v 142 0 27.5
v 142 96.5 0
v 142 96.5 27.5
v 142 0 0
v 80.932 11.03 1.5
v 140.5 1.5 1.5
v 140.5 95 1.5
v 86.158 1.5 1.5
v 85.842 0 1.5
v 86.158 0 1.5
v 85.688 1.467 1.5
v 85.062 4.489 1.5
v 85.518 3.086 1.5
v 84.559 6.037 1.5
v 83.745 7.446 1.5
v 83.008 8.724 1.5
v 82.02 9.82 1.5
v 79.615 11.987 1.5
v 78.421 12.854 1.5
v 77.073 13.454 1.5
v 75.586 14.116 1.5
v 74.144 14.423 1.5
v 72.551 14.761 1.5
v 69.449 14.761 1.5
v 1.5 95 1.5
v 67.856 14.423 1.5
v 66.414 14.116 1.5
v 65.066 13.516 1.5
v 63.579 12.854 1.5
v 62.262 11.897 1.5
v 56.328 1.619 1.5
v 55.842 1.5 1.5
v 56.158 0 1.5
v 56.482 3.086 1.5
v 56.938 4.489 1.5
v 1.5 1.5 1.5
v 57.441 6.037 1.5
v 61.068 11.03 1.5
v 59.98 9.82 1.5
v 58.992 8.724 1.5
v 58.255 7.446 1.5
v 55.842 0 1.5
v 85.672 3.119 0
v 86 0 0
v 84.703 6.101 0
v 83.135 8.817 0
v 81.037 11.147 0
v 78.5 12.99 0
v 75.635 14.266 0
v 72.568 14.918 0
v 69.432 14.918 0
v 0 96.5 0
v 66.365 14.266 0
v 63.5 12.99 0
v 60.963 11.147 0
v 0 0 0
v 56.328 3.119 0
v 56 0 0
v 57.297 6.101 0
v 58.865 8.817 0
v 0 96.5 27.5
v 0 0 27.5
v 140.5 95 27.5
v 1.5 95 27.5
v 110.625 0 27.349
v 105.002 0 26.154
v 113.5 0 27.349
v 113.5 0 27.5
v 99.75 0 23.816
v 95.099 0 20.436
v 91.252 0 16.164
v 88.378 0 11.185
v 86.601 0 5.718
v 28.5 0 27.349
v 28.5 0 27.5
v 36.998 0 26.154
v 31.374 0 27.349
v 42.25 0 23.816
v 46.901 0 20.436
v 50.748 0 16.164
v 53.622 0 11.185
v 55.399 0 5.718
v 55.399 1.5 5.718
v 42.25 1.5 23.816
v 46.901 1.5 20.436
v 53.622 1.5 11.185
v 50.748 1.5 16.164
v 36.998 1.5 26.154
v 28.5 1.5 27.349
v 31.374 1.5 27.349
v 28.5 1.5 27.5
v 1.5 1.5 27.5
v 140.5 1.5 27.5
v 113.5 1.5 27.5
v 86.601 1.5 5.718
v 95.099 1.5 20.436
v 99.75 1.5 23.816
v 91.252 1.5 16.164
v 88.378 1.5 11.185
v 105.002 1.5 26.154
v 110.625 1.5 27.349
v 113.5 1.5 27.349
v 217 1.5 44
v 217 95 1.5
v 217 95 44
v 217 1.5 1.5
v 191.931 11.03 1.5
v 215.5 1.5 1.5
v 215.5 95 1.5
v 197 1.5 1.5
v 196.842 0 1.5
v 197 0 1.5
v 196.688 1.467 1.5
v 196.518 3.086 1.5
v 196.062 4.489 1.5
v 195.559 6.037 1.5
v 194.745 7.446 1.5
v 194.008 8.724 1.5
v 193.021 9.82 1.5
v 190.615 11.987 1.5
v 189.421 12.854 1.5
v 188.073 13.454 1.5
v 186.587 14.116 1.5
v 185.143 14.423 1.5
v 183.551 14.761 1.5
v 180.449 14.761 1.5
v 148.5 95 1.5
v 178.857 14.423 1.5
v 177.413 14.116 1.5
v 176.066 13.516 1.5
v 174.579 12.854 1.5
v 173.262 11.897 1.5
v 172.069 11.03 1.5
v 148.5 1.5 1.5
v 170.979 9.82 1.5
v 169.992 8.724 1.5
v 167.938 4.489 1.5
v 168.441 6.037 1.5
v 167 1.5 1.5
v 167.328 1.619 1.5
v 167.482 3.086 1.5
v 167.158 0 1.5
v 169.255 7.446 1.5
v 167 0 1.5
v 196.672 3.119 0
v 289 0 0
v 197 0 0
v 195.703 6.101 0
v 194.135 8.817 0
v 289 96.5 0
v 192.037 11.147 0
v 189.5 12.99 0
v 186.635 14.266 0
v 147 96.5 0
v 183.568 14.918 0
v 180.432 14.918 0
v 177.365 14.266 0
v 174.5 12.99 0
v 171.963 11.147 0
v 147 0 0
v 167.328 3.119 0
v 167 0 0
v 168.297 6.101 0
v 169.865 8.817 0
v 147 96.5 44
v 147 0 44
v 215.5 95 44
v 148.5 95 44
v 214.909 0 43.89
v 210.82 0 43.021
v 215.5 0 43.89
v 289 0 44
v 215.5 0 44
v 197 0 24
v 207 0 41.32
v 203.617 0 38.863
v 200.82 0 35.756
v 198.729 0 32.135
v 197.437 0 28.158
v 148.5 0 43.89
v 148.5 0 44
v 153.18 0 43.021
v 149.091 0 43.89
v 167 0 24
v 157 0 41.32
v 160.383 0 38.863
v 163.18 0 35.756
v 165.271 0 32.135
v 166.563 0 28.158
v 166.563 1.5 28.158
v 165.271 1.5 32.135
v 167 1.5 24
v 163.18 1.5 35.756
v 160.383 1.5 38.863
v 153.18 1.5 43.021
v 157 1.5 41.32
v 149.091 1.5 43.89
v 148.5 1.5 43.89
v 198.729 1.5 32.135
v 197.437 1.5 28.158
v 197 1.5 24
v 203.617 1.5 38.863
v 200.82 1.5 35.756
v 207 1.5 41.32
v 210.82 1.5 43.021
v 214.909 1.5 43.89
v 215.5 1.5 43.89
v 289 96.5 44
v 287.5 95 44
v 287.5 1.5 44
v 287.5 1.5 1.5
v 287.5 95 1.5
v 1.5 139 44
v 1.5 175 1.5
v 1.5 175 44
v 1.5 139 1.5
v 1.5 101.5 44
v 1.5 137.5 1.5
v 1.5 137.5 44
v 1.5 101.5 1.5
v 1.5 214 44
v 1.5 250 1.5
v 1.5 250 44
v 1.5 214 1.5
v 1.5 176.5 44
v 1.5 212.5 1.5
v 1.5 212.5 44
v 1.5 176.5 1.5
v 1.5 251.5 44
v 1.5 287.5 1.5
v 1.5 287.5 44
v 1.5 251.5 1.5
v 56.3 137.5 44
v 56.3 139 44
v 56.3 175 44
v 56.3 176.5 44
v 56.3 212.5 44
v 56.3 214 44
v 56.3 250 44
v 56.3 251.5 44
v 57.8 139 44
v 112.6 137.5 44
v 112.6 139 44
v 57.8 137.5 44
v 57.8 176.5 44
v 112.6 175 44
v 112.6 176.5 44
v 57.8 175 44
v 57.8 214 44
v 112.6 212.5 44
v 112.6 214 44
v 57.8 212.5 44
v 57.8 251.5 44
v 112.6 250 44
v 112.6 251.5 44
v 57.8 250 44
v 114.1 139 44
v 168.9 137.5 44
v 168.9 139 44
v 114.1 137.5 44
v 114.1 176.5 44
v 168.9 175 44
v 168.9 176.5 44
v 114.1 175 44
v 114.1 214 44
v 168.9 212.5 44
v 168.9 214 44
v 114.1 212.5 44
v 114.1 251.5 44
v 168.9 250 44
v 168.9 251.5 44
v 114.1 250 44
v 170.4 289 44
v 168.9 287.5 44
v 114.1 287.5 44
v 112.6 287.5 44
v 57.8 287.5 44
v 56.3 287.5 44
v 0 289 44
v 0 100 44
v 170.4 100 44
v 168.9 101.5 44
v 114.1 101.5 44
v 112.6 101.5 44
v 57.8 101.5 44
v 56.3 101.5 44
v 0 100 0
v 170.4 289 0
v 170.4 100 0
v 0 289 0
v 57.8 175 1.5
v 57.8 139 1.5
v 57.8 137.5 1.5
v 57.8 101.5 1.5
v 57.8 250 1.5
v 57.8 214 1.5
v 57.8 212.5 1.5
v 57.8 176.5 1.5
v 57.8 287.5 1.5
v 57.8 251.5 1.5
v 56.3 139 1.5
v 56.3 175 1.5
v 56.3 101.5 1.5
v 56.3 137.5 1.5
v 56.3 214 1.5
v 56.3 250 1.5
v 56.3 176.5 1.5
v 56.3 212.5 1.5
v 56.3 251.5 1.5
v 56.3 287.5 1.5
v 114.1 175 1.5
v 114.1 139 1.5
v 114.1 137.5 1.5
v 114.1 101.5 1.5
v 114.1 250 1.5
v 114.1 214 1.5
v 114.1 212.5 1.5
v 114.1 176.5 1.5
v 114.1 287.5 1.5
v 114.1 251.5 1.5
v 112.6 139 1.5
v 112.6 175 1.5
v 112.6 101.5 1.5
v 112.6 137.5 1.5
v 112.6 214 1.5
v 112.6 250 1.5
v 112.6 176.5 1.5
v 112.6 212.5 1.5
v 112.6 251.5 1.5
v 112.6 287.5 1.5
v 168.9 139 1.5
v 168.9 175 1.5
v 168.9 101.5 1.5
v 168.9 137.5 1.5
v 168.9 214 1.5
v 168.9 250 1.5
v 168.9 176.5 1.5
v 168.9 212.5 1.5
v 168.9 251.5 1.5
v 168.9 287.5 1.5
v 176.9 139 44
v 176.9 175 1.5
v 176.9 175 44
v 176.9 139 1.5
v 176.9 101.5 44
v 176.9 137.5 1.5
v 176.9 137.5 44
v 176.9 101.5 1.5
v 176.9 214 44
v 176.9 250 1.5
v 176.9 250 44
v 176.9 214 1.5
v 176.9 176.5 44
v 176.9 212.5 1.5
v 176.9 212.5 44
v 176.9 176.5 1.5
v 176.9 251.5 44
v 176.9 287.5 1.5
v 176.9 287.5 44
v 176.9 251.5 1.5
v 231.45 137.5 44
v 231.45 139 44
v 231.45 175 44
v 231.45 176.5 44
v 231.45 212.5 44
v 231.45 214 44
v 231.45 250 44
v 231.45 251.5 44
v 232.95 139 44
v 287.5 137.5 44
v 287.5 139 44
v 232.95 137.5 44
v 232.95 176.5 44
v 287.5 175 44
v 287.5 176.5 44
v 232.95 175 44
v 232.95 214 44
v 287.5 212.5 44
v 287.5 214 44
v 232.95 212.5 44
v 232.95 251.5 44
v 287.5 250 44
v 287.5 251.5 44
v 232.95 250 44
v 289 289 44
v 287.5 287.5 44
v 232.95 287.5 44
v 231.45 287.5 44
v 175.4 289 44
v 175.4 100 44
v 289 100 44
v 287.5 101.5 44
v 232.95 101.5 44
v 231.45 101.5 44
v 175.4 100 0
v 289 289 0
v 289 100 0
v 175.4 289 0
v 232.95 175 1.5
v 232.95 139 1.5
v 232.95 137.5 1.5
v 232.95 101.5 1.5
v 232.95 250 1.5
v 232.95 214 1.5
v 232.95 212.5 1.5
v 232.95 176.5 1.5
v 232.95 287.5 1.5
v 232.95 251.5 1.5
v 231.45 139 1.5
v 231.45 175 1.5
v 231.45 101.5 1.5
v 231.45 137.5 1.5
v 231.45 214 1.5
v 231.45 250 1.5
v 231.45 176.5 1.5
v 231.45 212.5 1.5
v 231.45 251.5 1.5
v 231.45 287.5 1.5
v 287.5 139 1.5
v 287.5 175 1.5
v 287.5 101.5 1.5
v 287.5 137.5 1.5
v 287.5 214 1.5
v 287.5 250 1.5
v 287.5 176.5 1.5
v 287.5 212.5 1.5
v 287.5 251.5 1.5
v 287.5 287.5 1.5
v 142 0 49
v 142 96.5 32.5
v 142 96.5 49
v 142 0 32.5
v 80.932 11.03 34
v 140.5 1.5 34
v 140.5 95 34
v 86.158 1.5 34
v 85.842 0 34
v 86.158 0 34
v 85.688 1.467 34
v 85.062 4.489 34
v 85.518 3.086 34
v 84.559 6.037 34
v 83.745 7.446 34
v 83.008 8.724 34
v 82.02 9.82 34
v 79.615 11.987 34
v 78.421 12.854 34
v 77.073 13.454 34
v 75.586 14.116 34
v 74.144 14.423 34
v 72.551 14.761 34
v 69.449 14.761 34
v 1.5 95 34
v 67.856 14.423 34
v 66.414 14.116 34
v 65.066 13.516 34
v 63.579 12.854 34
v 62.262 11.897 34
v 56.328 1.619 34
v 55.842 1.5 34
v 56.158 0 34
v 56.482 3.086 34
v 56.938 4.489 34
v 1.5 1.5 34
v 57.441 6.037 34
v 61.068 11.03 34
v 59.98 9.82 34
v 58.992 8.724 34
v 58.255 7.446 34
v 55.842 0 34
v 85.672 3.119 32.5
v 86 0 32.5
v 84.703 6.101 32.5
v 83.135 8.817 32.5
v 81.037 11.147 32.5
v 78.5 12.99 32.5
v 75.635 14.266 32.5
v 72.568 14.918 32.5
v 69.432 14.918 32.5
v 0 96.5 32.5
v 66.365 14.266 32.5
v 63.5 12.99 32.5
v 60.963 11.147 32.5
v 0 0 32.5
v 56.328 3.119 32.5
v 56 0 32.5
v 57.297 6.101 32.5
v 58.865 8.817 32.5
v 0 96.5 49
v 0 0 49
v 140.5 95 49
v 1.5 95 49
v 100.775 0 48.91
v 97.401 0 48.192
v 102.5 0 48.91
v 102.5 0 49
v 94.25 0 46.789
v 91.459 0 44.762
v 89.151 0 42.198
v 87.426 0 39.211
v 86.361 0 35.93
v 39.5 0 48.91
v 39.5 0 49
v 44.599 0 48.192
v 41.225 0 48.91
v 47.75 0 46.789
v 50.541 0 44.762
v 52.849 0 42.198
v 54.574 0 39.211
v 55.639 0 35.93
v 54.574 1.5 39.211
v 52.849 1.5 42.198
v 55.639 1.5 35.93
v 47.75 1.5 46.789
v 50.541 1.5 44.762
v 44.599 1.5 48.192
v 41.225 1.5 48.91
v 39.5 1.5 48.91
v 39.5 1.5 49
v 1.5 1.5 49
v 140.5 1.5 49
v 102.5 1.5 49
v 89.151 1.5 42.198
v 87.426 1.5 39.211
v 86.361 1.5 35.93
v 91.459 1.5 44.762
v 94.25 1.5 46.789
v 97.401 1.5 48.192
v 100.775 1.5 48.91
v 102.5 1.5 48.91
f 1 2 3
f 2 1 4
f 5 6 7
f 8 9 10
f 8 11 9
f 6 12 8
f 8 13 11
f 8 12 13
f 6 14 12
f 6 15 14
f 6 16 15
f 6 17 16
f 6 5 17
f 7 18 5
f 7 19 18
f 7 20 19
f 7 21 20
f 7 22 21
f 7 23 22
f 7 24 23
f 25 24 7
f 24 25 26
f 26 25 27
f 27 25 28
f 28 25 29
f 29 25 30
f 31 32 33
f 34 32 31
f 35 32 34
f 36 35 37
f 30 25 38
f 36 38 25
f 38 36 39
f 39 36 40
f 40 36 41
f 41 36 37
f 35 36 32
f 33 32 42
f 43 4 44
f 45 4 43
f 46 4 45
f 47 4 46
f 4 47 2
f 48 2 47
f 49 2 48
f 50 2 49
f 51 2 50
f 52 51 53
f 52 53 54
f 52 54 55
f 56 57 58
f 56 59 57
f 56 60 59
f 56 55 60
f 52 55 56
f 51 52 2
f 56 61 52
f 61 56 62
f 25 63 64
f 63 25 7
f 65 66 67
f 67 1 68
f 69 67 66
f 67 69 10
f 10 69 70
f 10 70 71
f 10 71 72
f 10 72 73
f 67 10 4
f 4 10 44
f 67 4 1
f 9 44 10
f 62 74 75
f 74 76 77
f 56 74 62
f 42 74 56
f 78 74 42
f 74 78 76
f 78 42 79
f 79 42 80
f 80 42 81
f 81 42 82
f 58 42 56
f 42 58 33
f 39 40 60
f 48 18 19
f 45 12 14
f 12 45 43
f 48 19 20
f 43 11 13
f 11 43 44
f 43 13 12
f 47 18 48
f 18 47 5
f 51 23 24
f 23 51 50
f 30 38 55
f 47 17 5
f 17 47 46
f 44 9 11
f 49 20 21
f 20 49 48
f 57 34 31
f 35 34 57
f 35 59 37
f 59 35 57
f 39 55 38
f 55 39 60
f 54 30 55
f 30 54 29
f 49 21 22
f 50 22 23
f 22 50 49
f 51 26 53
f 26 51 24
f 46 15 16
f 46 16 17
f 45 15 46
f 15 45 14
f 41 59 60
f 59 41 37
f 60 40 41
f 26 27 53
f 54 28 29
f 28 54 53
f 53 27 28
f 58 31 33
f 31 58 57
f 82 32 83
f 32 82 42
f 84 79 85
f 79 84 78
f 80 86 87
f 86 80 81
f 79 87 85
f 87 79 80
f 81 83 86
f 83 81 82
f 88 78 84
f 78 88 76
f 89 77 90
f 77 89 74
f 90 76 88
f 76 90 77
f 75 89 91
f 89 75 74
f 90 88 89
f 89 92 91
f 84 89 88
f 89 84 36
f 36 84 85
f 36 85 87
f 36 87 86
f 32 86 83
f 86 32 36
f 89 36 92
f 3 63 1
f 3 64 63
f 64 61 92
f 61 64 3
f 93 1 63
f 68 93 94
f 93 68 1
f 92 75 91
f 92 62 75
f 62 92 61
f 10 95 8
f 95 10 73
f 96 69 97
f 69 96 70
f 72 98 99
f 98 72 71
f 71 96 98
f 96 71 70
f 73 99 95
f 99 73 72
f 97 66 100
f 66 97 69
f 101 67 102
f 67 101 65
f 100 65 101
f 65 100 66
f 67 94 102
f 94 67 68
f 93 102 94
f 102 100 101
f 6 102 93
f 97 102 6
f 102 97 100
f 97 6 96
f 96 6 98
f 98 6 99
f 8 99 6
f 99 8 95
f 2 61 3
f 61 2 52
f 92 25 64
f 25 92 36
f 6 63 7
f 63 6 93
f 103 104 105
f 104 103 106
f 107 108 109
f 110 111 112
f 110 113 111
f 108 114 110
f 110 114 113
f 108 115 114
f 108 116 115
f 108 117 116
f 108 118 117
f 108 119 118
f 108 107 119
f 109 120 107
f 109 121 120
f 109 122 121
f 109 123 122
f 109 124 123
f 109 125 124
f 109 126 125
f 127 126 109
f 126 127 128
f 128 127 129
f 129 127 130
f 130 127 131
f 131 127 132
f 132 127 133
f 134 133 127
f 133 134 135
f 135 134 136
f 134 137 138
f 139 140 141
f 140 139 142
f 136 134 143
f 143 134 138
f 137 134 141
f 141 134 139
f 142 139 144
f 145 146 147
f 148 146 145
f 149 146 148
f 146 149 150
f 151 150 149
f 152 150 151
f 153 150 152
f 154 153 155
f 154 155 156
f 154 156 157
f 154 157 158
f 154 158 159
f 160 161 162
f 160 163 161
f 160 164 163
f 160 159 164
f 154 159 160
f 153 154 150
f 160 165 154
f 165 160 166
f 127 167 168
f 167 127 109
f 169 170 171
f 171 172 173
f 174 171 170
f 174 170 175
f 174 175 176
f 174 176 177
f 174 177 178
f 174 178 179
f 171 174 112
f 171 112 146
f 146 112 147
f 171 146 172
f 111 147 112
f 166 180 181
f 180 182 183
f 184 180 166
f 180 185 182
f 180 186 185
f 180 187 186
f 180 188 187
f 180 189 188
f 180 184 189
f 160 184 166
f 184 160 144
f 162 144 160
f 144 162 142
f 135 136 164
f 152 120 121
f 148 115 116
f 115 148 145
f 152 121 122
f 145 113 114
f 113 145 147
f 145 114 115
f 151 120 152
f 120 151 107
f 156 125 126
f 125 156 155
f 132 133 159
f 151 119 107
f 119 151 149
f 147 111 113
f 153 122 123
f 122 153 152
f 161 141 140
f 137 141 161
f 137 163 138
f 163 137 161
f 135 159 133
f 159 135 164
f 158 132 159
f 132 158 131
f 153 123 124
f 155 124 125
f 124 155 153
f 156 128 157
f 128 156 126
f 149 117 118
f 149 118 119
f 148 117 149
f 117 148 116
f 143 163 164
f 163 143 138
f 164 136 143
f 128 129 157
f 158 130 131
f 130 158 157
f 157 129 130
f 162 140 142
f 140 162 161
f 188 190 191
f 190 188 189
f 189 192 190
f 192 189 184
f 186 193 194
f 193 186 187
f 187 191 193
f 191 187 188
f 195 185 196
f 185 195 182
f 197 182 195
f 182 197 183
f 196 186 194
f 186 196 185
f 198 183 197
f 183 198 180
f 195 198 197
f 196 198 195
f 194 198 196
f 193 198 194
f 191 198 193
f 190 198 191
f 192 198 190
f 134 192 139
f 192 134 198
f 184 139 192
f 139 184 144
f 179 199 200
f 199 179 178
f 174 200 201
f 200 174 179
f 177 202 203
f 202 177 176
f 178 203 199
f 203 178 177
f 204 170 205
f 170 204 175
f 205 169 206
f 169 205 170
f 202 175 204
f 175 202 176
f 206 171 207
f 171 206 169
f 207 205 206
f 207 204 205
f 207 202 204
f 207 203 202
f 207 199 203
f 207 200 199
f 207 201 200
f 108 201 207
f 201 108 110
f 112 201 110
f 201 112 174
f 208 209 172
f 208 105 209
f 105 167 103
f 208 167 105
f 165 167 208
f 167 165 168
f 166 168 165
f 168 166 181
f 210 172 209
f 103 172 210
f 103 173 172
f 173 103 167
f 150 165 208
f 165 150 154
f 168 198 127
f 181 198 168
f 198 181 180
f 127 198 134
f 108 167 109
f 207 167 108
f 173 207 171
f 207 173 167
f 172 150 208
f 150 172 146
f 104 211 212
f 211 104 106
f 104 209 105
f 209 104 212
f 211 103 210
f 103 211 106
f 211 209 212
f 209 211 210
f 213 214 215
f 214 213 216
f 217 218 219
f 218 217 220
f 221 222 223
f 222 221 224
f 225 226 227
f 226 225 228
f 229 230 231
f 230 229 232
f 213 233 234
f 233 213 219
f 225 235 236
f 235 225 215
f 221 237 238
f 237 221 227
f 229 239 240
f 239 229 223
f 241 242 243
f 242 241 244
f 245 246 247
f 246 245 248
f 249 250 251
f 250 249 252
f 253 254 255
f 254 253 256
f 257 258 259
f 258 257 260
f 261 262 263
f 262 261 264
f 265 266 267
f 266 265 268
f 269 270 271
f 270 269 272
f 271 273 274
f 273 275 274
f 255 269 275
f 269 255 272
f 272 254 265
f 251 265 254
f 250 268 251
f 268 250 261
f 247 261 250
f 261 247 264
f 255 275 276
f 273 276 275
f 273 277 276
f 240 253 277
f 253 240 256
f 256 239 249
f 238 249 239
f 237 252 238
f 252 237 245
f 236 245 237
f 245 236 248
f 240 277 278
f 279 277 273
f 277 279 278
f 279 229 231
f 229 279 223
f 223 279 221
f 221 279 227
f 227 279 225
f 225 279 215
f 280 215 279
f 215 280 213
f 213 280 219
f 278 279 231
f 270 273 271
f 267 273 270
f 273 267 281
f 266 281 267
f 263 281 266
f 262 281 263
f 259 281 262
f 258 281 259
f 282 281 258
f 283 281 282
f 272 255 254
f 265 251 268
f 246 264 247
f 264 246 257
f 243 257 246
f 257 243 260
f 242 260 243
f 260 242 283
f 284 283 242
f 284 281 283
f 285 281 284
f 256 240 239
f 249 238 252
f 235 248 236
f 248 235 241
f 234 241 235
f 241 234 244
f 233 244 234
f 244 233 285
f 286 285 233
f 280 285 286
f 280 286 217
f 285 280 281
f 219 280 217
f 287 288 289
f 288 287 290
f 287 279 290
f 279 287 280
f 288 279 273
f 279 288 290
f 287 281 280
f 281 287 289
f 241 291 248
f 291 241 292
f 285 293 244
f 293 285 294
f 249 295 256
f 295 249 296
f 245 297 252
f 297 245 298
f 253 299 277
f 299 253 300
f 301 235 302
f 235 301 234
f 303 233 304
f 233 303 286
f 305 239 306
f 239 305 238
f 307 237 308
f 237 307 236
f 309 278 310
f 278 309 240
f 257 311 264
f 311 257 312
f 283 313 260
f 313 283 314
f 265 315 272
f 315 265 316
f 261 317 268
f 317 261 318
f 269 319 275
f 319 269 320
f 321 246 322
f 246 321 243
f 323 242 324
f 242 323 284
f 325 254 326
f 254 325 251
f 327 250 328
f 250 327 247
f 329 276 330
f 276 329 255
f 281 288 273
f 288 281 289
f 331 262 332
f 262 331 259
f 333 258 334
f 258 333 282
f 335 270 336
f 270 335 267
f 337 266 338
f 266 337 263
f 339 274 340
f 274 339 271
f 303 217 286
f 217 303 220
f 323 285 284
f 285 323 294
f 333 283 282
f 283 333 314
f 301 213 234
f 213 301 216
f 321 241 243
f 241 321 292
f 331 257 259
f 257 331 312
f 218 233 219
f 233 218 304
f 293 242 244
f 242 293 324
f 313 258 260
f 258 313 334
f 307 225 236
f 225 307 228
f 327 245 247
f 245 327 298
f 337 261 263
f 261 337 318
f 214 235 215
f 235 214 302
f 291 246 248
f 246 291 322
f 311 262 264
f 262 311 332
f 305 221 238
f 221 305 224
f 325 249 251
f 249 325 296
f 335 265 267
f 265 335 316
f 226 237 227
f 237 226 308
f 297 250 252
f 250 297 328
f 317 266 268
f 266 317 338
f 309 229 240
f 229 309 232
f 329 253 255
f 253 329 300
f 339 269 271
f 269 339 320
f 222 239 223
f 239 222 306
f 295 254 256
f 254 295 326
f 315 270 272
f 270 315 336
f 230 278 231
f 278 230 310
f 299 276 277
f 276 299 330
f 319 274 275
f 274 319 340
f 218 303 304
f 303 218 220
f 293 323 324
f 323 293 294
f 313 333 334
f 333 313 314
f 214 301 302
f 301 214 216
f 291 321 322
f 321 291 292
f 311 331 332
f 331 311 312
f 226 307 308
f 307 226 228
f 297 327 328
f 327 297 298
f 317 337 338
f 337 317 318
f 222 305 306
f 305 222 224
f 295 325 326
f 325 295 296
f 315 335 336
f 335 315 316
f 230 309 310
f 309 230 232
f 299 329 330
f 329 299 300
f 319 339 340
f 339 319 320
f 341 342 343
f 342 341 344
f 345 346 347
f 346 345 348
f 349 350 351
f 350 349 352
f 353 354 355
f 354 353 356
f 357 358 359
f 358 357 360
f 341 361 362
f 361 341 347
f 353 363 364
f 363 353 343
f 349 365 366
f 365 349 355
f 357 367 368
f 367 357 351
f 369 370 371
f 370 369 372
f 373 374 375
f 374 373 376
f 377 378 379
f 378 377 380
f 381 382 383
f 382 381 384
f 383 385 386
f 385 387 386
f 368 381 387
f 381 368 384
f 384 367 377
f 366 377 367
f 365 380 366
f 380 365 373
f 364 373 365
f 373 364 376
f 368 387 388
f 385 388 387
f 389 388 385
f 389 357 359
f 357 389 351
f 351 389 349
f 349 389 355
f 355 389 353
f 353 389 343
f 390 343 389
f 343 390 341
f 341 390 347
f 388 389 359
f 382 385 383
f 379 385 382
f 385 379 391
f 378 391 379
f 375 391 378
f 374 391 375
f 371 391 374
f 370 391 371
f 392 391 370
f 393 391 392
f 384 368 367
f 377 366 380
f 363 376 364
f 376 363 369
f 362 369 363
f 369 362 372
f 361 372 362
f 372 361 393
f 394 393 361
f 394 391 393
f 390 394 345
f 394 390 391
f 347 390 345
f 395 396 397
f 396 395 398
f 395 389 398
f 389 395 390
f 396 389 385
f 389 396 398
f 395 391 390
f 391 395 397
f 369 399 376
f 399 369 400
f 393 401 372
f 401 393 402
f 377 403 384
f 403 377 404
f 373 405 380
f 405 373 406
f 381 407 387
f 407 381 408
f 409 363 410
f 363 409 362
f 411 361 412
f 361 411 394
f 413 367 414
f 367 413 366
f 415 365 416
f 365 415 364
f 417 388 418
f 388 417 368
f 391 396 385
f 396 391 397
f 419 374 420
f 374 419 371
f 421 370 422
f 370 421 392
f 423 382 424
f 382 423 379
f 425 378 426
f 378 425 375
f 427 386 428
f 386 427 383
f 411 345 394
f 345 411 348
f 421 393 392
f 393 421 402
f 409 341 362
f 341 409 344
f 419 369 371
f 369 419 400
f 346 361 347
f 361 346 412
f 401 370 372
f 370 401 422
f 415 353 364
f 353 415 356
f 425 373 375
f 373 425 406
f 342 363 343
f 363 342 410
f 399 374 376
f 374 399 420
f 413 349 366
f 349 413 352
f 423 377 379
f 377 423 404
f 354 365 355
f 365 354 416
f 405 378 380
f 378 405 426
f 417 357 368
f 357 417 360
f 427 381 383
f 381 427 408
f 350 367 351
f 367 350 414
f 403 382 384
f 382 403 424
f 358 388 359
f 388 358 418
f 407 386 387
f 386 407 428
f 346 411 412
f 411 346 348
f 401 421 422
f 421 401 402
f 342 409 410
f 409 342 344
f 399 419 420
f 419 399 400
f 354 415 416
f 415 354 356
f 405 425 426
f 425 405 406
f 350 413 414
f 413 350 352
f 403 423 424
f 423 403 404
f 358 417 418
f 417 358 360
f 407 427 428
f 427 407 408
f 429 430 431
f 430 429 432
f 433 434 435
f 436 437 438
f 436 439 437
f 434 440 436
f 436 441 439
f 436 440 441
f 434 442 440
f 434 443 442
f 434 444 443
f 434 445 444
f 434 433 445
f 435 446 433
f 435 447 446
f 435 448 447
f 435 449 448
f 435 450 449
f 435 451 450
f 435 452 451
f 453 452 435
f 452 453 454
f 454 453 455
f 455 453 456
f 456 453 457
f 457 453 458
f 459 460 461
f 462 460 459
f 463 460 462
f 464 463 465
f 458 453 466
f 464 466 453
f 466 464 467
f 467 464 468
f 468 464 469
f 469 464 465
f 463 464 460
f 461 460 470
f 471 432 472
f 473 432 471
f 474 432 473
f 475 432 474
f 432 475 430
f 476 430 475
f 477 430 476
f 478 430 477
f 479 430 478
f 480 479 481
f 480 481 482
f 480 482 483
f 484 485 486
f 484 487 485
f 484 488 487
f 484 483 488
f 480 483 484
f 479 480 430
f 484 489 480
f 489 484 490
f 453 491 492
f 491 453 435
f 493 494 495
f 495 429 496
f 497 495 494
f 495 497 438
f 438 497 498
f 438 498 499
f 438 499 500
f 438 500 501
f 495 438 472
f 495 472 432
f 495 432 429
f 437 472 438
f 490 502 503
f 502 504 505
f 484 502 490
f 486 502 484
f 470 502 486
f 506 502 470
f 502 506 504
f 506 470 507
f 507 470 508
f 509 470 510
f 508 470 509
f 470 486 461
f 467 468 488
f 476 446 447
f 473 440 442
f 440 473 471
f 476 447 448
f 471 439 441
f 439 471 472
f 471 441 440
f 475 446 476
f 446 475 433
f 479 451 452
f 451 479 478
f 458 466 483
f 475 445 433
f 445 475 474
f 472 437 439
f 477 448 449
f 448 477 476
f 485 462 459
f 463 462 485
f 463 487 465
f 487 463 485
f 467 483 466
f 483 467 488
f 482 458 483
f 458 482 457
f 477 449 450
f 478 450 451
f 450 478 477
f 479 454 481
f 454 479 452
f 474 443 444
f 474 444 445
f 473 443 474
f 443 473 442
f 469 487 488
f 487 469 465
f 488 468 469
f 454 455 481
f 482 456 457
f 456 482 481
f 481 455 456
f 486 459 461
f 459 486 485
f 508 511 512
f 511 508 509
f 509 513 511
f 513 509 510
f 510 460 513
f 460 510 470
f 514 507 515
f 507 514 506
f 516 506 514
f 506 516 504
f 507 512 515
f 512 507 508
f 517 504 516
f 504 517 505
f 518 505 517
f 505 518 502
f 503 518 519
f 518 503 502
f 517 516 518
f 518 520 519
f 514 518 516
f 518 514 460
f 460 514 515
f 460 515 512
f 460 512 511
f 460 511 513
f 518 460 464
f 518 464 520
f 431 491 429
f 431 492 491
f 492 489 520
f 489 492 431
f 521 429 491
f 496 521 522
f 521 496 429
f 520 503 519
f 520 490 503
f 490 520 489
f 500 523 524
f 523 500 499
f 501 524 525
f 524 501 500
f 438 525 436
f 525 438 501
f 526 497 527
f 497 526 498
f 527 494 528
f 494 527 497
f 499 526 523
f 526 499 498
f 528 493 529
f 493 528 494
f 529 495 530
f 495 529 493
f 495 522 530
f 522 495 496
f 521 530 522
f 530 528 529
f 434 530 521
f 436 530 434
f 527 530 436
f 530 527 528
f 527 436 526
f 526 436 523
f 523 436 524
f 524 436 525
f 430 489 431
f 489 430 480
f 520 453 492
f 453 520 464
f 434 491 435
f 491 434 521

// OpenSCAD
// file: utils.scad
wall = 1.5;

function Sum_Numbers(numbers = [ 1, 2, 3 ], i = 0) =
    i == len(numbers) ? 0 : numbers[i] + Sum_Numbers(numbers, i + 1);

function Sum(elements = [ [ 1, 2, 3 ], 5 ]) =
    let(max_element_length = max(
            [for (element = elements) is_list(element) ? len(element)
                                                       : 0])) max_element_length
        ? [for (i = [0:max_element_length - 1]) Sum_Numbers(
              [for (element = elements) is_list(element)
                      ? (element[i] ? element[i] : 0)
                      : element])]
        : Sum_Numbers(elements);

function Minus(list_or_number = [ 1, 2, 3 ]) =
    is_list(list_or_number)
        ? [for (list_element = list_or_number) Minus(list_element)]
        : -list_or_number;

module Open_Box(size = [ 1, 1, 1 ], x = 1, y = 1, t = wall) {
  cube([ size.x, size.y, t ]);
  dx = (size.x - t) / x;
  dy = (size.y - t) / y;
  for (i = [0:x]) {
    translate([ i * dx, 0, 0 ]) { cube([ t, size.y, size.z ]); }
  }
  for (i = [0:y]) {
    translate([ 0, i * dy, 0 ]) { cube([ size.x, t, size.z ]); }
  }
}

module Box_Wall_Part(size = [ 1, 1, 1 ], rounded = false) {
  if (rounded) {
    cube_height_or_width = size.z - size.x;
    cube([
      cube_height_or_width < 0 ? -cube_height_or_width : size.x,
      size.y,
      cube_height_or_width > 0 ? cube_height_or_width : size.z
    ]);

    cylinder_radius = cube_height_or_width > 0 ? size.x : size.z;

    translate([
      cube_height_or_width < 0 ? -cube_height_or_width : 0,
      0,
      cube_height_or_width > 0 ? cube_height_or_width : 0
    ]) {
      intersection() {
        rotate([ 90, 0, 0 ]) cylinder(
            h = size.x,
            r1 = cylinder_radius,
            r2 = cylinder_radius,
            center = true);
        cube([ size.x, size.y, size.z ]);
      }
    }
  } else {
    cube(size);
  }
}

module Box_Wall(size = [ 1, 1, 1 ], hole_diameter = 0, rounded = 0) {
  module _Box_Wall_Part() {
    Box_Wall_Part(
        size = [ (size.x - hole_diameter) / 2, size.y, size.z ],
        rounded = rounded);
  }
  if (hole_diameter > 0) {
    _Box_Wall_Part();
    translate([ size.x, 0, 0 ]) mirror([ 1, 0, 0 ]) _Box_Wall_Part();
  } else {
    cube(size);
  }
}

module
Box(size = [ 1, 1, 1 ],
    wall = wall,
    bottom_hole_diameter = 0,
    top_hole_diameter = 0,
    left_hole_diameter = 0,
    right_hole_diameter = 0,
    rounded = false) {
  base = [ size.x, size.y, wall ];

  difference() {
    cube(base);
    translate([ size.x / 2, 0, 0 ]) { sphere(d = bottom_hole_diameter); }
    translate([ size.x / 2, size.y, 0 ]) { sphere(d = top_hole_diameter); }
    translate([ 0, size.y / 2, 0 ]) { sphere(d = left_hole_diameter); }
    translate([ size.x, size.y / 2, 0 ]) { sphere(d = right_hole_diameter); }
  }

  Box_Wall(
      size = [ size.x, wall, size.z ],
      hole_diameter = bottom_hole_diameter,
      rounded = rounded);

  translate([ 0, size.y, 0 ]) {
    Box_Wall(
        size = [ size.x, wall, size.z ],
        hole_diameter = top_hole_diameter,
        rounded = rounded);
  }

  translate([ wall, 0, 0 ]) {
    rotate(a = 90) {
      Box_Wall(
          size = [ size.y, wall, size.z ],
          hole_diameter = left_hole_diameter,
          rounded = rounded);
    }
  }

  translate([ size.x, 0, 0 ]) {
    rotate(a = 90) {
      Box_Wall(
          size = [ size.y, wall, size.z ],
          hole_diameter = right_hole_diameter,
          rounded = rounded);
    }
  }
}

module Multi_Box(
    size = [ 1, 1, 1 ],
    wall = wall,
    bottom_hole_diameter = 0,
    top_hole_diameter = 0,
    left_hole_diameter = 0,
    right_hole_diameter = 0,
    rounded = false,
    x = 2,
    y = 1) {
  for (i = [0:x - 1]) {
    for (j = [0:y - 1]) {
      translate([ i * (size.x - wall), j * (size.y - wall), 0 ]) {
        Box(size = size,
            wall = wall,
            bottom_hole_diameter = bottom_hole_diameter,
            top_hole_diameter = top_hole_diameter,
            left_hole_diameter = left_hole_diameter,
            right_hole_diameter = right_hole_diameter,
            rounded = rounded);
      }
    }
  }
}
// main file
include <utils.scad>
gap = 5;
wall = 1.5;

box = [ 286, 286, 46 ];
box_padding = 2;
padded_box = Sum([ box, Minus(box_padding) ]);

earth_tokens = [ 30, 30, 43 ];
x_tokens = [ 38, 38, 43 ];
room_tiles = [ 137, 75, 18 ];
box_walls = [ 2 * wall, 2 * wall, wall ];
cards = [ 66, 91, 37 ];
big_cards = [ 120, 80, 13 ];
cards_padding = [ 1, 1, 2 ];
finger_hole_diameter = 30;
token_types = 25;

rooms_box = Sum([ room_tiles, box_padding, box_walls ]);
cards_box = Sum([ cards, cards_padding, box_walls ]);
big_cards_box = Sum([ big_cards, cards_padding, box_walls ]);
characters_box = [
  padded_box.x - (rooms_box.x + cards_box.x) + wall,
  cards_box.y,
  padded_box.z
];
tokens_space = [ padded_box.x, padded_box.y - cards_box.y, padded_box.z ];
left_tokens_box = [ tokens_space.x * 3 / 5, tokens_space.y, tokens_space.z ];
right_tokens_box = [ tokens_space.x * 2 / 5, tokens_space.y, tokens_space.z ];

expanded_rooms_box =
    [ rooms_box.x, cards_box.y, padded_box.z - big_cards_box.z ];
expanded_cards_box = [ cards_box.x, cards_box.y, padded_box.z ];
expanded_big_cards_box = [ rooms_box.x, cards_box.y, big_cards_box.z ];

Box(size = expanded_rooms_box,
    bottom_hole_diameter = finger_hole_diameter,
    rounded = true);

translate([ expanded_rooms_box.x + gap, 0, 0 ]) {
  Box(size = expanded_cards_box,
      bottom_hole_diameter = finger_hole_diameter,
      rounded = true);
  translate([ expanded_cards_box.x - wall, 0, 0 ]) {
    Box(size = characters_box);
  }
}

translate([ 0, expanded_cards_box.y + gap, 0 ]) {
  Open_Box(size = left_tokens_box, x = 3, y = 5);
  translate([ left_tokens_box.x + gap, 0, 0 ]) {
    Open_Box(size = right_tokens_box, x = 2, y = 5);
  }
}

translate([ 0, 0, expanded_rooms_box.z + gap ]) {
  Box(size = expanded_big_cards_box,
      bottom_hole_diameter = finger_hole_diameter,
      rounded = true);
}

% cube(padded_box);
